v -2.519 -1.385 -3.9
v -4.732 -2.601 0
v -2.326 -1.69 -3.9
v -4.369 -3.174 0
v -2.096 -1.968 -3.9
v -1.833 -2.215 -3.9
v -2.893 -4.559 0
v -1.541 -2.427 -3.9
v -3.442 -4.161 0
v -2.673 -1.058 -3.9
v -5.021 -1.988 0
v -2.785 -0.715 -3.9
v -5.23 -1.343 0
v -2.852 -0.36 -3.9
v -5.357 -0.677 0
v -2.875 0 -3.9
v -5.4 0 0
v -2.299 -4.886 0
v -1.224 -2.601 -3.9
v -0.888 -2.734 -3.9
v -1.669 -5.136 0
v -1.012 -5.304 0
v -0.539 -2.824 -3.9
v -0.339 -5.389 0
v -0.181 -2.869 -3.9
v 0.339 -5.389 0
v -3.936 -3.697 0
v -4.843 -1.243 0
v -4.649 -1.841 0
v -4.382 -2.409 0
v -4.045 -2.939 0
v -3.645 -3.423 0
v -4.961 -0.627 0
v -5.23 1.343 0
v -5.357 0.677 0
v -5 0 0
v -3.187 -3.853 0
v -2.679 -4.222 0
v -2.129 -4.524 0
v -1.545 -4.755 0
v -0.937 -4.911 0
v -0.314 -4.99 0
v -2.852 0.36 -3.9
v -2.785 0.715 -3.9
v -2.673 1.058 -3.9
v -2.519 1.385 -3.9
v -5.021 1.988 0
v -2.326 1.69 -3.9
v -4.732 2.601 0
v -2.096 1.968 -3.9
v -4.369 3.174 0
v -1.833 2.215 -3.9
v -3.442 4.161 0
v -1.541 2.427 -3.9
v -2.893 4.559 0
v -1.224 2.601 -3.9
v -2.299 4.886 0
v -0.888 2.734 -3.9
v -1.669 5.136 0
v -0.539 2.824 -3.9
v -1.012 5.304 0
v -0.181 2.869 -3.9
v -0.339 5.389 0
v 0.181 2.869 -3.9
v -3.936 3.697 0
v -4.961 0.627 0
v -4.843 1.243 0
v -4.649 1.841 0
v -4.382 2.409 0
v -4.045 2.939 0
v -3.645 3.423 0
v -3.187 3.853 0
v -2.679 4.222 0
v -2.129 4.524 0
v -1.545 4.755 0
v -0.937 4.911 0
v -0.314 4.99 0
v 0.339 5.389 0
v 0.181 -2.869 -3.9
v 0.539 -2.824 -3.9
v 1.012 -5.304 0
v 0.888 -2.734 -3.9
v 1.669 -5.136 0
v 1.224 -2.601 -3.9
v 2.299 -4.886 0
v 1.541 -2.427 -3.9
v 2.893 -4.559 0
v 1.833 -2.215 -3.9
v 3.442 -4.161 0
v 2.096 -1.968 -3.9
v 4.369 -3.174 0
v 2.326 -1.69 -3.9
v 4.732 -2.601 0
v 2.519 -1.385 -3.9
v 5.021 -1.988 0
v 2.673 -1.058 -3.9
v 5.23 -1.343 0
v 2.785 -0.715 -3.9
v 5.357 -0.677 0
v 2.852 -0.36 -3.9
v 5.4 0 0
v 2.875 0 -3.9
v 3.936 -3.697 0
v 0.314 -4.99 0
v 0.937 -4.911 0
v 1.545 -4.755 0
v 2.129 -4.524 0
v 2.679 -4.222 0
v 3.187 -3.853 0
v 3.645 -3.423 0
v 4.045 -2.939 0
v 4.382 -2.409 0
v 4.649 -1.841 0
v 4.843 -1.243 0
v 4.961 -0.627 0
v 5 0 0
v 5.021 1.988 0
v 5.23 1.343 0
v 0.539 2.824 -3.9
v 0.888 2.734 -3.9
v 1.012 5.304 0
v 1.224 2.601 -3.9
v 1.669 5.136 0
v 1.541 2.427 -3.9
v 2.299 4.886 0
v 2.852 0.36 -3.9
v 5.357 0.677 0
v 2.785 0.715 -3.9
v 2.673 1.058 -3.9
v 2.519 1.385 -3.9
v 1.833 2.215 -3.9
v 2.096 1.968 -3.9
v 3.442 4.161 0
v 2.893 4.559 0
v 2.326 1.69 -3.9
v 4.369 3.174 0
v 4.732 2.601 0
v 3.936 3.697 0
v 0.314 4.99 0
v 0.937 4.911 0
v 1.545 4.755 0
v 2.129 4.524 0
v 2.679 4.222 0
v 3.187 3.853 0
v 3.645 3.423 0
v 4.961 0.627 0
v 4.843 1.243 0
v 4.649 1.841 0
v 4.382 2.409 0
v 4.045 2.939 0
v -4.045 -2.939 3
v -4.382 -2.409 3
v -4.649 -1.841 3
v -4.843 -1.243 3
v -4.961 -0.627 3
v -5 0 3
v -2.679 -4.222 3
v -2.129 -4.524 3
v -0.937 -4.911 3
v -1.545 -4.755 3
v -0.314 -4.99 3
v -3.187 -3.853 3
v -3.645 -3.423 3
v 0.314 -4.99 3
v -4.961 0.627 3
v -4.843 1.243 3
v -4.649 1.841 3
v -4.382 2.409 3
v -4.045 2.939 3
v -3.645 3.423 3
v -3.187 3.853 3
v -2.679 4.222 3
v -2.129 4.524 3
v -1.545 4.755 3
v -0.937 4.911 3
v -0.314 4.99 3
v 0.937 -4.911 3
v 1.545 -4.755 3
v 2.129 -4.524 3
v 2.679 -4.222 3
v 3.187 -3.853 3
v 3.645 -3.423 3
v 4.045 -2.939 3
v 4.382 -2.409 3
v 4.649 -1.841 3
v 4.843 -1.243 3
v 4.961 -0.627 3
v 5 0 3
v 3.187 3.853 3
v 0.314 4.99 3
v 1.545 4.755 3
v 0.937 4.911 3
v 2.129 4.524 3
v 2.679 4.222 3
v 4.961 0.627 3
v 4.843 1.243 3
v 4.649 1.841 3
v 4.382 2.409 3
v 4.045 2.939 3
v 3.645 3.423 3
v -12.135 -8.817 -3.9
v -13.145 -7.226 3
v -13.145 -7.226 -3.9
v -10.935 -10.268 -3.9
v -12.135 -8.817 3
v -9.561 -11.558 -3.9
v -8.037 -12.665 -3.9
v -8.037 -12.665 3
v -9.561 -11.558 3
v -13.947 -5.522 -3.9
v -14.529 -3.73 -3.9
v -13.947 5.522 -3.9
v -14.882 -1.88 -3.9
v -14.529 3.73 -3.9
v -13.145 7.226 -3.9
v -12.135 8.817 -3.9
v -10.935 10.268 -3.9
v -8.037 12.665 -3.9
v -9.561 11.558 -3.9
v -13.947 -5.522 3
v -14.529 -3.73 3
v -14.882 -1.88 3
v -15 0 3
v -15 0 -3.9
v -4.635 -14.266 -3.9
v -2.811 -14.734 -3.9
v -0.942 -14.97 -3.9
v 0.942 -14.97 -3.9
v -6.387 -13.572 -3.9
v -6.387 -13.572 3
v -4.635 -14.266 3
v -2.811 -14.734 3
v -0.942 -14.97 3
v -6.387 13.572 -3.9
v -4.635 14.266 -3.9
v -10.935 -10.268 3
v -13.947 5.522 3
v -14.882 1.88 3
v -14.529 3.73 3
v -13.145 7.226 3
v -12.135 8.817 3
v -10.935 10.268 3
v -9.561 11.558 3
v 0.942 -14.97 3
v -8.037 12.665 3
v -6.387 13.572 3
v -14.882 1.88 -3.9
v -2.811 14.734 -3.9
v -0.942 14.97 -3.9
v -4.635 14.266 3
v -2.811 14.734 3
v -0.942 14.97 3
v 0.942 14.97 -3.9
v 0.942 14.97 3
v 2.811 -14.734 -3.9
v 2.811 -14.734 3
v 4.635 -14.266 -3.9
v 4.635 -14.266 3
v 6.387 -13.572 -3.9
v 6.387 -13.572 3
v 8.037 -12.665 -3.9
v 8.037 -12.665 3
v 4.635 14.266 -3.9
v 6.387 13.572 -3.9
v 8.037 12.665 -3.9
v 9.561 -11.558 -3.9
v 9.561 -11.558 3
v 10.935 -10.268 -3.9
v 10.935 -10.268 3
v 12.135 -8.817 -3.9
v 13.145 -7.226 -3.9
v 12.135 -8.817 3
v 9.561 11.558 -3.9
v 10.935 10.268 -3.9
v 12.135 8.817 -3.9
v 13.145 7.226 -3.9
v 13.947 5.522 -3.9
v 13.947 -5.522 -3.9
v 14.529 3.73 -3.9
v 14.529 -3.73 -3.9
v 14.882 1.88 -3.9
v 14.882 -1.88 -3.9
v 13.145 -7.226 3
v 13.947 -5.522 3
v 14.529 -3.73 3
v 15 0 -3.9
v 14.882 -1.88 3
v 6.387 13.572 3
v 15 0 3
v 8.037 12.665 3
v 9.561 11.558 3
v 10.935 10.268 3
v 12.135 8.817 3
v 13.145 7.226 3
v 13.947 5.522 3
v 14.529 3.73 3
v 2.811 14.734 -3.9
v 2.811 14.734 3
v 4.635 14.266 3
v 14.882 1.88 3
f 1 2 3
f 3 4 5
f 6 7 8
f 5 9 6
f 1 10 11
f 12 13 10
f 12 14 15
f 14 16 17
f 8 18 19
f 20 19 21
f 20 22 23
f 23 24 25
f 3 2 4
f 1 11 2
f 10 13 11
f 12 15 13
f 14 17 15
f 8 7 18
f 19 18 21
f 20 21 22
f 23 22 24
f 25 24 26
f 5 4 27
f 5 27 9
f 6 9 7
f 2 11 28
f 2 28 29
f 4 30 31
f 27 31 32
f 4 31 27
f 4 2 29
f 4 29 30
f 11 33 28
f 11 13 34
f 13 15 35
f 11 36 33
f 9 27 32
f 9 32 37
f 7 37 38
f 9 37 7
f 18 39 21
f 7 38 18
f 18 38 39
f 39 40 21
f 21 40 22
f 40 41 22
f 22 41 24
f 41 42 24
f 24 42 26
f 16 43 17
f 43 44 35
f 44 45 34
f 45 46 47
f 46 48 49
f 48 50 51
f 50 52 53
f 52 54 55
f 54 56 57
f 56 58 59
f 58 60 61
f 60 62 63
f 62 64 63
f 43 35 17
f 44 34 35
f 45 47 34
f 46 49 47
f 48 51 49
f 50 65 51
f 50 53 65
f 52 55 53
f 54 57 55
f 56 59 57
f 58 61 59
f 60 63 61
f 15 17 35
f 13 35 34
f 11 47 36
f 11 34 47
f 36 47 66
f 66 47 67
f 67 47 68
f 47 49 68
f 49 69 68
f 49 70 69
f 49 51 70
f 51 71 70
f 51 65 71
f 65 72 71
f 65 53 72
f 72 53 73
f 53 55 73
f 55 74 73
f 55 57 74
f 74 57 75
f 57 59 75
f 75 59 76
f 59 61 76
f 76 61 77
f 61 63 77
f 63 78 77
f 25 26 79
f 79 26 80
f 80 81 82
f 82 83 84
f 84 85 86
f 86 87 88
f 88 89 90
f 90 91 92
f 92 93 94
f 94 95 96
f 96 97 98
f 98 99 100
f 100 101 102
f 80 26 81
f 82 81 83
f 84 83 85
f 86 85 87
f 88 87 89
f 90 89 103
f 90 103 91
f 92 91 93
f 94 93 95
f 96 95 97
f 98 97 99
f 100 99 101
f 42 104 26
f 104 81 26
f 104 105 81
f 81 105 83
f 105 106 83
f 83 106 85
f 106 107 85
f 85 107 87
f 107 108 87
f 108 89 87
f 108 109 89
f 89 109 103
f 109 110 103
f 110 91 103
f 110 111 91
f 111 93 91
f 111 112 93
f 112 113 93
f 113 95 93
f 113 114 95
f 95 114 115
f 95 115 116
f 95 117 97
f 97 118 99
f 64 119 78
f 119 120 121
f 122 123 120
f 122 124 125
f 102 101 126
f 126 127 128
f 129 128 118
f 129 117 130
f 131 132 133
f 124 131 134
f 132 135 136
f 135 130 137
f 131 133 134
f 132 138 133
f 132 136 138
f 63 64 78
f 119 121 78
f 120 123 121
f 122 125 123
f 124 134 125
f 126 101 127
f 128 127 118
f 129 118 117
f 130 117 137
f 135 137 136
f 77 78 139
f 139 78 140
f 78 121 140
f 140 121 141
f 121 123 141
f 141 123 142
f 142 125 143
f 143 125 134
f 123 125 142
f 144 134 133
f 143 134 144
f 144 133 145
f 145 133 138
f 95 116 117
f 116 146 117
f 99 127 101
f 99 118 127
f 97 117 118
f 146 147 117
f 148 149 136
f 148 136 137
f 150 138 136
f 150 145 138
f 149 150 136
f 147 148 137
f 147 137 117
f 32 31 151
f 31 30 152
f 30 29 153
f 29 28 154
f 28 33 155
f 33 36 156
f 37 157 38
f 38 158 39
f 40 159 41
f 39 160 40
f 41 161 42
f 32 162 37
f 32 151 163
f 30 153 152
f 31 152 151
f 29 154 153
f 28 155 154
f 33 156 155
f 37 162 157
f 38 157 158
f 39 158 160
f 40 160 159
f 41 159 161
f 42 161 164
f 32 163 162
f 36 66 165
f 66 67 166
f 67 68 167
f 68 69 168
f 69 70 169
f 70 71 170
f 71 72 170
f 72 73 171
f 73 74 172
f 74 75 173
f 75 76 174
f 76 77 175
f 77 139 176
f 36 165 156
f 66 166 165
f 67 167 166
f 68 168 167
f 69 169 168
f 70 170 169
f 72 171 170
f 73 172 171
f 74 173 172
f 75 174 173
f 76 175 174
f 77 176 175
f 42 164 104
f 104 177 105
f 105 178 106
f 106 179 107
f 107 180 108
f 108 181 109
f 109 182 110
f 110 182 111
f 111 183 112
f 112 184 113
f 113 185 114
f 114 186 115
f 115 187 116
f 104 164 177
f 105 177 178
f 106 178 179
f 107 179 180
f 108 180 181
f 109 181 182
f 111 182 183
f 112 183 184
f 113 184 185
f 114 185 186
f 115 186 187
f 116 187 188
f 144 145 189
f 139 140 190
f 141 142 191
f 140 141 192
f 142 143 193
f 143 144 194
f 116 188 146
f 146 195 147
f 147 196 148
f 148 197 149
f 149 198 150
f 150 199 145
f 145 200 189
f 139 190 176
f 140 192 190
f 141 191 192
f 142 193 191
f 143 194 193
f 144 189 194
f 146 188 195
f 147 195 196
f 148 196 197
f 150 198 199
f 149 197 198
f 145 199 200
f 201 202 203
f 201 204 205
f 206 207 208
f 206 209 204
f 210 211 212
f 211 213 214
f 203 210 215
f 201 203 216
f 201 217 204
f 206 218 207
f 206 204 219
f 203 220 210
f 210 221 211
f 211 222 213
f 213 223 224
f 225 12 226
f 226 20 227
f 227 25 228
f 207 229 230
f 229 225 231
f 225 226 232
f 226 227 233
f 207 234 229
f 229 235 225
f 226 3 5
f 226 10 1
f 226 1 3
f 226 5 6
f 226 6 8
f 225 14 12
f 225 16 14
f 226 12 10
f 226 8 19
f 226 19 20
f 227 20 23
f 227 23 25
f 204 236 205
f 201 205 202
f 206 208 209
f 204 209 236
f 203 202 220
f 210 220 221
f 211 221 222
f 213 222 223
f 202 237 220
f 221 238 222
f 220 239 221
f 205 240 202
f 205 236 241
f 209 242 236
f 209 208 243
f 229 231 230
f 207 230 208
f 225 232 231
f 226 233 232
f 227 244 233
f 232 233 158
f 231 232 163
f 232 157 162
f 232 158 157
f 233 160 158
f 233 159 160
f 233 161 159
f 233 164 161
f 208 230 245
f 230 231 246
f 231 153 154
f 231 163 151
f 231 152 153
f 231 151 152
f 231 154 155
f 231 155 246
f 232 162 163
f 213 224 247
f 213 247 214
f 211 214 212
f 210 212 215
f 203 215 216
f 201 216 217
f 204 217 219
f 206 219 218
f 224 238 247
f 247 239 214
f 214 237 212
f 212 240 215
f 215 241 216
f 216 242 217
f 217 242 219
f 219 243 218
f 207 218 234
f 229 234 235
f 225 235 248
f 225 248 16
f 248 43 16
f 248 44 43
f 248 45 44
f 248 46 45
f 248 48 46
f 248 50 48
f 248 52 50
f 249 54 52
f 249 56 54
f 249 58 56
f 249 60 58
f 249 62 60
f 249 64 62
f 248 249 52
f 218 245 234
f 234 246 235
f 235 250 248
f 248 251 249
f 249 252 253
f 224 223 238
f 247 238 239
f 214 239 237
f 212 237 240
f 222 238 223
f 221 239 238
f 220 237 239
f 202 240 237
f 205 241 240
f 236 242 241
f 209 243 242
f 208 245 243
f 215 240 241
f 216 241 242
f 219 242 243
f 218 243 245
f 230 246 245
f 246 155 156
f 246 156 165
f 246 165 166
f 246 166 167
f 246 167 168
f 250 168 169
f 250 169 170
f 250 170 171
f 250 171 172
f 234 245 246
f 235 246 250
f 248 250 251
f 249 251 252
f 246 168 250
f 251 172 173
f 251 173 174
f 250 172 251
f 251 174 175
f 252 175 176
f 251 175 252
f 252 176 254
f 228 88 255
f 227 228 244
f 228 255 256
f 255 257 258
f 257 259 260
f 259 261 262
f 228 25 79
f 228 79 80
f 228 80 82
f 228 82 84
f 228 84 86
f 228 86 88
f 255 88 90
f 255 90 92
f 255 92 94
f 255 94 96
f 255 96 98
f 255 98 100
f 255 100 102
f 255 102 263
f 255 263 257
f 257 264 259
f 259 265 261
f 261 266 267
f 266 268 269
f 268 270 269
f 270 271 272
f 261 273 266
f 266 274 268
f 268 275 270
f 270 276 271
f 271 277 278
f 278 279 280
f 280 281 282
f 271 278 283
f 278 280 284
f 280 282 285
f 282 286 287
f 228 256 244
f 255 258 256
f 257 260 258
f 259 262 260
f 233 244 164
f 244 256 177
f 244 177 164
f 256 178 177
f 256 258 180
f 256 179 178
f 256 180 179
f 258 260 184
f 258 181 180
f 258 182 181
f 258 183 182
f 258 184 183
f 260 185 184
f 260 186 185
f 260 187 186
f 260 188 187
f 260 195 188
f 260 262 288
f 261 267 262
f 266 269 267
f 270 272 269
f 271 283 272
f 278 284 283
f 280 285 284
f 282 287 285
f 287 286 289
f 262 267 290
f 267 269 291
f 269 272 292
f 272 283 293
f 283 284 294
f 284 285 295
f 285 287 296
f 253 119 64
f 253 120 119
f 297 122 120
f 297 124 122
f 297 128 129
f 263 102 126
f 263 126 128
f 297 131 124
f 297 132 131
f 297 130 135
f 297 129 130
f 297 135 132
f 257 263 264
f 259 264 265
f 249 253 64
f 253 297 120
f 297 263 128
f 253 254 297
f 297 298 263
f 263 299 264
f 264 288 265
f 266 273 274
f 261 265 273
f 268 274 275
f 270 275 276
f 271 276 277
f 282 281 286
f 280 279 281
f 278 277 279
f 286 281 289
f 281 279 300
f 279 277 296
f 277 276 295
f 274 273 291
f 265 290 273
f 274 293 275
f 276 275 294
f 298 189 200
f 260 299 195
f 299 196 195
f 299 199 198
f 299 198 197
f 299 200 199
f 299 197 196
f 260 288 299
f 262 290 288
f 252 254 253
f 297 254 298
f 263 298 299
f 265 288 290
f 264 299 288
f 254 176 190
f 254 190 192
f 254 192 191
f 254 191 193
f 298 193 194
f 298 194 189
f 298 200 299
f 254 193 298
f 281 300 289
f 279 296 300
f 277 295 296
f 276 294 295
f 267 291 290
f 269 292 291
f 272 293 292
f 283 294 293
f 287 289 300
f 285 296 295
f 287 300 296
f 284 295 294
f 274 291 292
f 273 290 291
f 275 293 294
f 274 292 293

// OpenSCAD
$fn = 50;

difference() {
	union() {
		translate(v = [0, 0, -3.9000000000000004]) {
			cylinder(h = 6.9, r = 15.0);
		}
	}
	union() {
		translate(v = [0, 0, 0]) {
			rotate(a = [0, 0, 0]) {
				difference() {
					union() {
						translate(v = [0, 0, -6.9]) {
							cylinder(h = 6.9, r = 2.6);
						}
						translate(v = [0, 0, -3.9]) {
							cylinder(h = 3.9, r1 = 2.875, r2 = 5.4);
						}
						translate(v = [0, 0, -6.9]) {
							cylinder(h = 6.9, r = 2.875);
						}
						translate(v = [0, 0, -6.9]) {
							cylinder(h = 6.9, r = 2.6);
						}
					}
					union();
				}
			}
		}
		#cylinder(h = 3, r = 5.0);
	}
}
